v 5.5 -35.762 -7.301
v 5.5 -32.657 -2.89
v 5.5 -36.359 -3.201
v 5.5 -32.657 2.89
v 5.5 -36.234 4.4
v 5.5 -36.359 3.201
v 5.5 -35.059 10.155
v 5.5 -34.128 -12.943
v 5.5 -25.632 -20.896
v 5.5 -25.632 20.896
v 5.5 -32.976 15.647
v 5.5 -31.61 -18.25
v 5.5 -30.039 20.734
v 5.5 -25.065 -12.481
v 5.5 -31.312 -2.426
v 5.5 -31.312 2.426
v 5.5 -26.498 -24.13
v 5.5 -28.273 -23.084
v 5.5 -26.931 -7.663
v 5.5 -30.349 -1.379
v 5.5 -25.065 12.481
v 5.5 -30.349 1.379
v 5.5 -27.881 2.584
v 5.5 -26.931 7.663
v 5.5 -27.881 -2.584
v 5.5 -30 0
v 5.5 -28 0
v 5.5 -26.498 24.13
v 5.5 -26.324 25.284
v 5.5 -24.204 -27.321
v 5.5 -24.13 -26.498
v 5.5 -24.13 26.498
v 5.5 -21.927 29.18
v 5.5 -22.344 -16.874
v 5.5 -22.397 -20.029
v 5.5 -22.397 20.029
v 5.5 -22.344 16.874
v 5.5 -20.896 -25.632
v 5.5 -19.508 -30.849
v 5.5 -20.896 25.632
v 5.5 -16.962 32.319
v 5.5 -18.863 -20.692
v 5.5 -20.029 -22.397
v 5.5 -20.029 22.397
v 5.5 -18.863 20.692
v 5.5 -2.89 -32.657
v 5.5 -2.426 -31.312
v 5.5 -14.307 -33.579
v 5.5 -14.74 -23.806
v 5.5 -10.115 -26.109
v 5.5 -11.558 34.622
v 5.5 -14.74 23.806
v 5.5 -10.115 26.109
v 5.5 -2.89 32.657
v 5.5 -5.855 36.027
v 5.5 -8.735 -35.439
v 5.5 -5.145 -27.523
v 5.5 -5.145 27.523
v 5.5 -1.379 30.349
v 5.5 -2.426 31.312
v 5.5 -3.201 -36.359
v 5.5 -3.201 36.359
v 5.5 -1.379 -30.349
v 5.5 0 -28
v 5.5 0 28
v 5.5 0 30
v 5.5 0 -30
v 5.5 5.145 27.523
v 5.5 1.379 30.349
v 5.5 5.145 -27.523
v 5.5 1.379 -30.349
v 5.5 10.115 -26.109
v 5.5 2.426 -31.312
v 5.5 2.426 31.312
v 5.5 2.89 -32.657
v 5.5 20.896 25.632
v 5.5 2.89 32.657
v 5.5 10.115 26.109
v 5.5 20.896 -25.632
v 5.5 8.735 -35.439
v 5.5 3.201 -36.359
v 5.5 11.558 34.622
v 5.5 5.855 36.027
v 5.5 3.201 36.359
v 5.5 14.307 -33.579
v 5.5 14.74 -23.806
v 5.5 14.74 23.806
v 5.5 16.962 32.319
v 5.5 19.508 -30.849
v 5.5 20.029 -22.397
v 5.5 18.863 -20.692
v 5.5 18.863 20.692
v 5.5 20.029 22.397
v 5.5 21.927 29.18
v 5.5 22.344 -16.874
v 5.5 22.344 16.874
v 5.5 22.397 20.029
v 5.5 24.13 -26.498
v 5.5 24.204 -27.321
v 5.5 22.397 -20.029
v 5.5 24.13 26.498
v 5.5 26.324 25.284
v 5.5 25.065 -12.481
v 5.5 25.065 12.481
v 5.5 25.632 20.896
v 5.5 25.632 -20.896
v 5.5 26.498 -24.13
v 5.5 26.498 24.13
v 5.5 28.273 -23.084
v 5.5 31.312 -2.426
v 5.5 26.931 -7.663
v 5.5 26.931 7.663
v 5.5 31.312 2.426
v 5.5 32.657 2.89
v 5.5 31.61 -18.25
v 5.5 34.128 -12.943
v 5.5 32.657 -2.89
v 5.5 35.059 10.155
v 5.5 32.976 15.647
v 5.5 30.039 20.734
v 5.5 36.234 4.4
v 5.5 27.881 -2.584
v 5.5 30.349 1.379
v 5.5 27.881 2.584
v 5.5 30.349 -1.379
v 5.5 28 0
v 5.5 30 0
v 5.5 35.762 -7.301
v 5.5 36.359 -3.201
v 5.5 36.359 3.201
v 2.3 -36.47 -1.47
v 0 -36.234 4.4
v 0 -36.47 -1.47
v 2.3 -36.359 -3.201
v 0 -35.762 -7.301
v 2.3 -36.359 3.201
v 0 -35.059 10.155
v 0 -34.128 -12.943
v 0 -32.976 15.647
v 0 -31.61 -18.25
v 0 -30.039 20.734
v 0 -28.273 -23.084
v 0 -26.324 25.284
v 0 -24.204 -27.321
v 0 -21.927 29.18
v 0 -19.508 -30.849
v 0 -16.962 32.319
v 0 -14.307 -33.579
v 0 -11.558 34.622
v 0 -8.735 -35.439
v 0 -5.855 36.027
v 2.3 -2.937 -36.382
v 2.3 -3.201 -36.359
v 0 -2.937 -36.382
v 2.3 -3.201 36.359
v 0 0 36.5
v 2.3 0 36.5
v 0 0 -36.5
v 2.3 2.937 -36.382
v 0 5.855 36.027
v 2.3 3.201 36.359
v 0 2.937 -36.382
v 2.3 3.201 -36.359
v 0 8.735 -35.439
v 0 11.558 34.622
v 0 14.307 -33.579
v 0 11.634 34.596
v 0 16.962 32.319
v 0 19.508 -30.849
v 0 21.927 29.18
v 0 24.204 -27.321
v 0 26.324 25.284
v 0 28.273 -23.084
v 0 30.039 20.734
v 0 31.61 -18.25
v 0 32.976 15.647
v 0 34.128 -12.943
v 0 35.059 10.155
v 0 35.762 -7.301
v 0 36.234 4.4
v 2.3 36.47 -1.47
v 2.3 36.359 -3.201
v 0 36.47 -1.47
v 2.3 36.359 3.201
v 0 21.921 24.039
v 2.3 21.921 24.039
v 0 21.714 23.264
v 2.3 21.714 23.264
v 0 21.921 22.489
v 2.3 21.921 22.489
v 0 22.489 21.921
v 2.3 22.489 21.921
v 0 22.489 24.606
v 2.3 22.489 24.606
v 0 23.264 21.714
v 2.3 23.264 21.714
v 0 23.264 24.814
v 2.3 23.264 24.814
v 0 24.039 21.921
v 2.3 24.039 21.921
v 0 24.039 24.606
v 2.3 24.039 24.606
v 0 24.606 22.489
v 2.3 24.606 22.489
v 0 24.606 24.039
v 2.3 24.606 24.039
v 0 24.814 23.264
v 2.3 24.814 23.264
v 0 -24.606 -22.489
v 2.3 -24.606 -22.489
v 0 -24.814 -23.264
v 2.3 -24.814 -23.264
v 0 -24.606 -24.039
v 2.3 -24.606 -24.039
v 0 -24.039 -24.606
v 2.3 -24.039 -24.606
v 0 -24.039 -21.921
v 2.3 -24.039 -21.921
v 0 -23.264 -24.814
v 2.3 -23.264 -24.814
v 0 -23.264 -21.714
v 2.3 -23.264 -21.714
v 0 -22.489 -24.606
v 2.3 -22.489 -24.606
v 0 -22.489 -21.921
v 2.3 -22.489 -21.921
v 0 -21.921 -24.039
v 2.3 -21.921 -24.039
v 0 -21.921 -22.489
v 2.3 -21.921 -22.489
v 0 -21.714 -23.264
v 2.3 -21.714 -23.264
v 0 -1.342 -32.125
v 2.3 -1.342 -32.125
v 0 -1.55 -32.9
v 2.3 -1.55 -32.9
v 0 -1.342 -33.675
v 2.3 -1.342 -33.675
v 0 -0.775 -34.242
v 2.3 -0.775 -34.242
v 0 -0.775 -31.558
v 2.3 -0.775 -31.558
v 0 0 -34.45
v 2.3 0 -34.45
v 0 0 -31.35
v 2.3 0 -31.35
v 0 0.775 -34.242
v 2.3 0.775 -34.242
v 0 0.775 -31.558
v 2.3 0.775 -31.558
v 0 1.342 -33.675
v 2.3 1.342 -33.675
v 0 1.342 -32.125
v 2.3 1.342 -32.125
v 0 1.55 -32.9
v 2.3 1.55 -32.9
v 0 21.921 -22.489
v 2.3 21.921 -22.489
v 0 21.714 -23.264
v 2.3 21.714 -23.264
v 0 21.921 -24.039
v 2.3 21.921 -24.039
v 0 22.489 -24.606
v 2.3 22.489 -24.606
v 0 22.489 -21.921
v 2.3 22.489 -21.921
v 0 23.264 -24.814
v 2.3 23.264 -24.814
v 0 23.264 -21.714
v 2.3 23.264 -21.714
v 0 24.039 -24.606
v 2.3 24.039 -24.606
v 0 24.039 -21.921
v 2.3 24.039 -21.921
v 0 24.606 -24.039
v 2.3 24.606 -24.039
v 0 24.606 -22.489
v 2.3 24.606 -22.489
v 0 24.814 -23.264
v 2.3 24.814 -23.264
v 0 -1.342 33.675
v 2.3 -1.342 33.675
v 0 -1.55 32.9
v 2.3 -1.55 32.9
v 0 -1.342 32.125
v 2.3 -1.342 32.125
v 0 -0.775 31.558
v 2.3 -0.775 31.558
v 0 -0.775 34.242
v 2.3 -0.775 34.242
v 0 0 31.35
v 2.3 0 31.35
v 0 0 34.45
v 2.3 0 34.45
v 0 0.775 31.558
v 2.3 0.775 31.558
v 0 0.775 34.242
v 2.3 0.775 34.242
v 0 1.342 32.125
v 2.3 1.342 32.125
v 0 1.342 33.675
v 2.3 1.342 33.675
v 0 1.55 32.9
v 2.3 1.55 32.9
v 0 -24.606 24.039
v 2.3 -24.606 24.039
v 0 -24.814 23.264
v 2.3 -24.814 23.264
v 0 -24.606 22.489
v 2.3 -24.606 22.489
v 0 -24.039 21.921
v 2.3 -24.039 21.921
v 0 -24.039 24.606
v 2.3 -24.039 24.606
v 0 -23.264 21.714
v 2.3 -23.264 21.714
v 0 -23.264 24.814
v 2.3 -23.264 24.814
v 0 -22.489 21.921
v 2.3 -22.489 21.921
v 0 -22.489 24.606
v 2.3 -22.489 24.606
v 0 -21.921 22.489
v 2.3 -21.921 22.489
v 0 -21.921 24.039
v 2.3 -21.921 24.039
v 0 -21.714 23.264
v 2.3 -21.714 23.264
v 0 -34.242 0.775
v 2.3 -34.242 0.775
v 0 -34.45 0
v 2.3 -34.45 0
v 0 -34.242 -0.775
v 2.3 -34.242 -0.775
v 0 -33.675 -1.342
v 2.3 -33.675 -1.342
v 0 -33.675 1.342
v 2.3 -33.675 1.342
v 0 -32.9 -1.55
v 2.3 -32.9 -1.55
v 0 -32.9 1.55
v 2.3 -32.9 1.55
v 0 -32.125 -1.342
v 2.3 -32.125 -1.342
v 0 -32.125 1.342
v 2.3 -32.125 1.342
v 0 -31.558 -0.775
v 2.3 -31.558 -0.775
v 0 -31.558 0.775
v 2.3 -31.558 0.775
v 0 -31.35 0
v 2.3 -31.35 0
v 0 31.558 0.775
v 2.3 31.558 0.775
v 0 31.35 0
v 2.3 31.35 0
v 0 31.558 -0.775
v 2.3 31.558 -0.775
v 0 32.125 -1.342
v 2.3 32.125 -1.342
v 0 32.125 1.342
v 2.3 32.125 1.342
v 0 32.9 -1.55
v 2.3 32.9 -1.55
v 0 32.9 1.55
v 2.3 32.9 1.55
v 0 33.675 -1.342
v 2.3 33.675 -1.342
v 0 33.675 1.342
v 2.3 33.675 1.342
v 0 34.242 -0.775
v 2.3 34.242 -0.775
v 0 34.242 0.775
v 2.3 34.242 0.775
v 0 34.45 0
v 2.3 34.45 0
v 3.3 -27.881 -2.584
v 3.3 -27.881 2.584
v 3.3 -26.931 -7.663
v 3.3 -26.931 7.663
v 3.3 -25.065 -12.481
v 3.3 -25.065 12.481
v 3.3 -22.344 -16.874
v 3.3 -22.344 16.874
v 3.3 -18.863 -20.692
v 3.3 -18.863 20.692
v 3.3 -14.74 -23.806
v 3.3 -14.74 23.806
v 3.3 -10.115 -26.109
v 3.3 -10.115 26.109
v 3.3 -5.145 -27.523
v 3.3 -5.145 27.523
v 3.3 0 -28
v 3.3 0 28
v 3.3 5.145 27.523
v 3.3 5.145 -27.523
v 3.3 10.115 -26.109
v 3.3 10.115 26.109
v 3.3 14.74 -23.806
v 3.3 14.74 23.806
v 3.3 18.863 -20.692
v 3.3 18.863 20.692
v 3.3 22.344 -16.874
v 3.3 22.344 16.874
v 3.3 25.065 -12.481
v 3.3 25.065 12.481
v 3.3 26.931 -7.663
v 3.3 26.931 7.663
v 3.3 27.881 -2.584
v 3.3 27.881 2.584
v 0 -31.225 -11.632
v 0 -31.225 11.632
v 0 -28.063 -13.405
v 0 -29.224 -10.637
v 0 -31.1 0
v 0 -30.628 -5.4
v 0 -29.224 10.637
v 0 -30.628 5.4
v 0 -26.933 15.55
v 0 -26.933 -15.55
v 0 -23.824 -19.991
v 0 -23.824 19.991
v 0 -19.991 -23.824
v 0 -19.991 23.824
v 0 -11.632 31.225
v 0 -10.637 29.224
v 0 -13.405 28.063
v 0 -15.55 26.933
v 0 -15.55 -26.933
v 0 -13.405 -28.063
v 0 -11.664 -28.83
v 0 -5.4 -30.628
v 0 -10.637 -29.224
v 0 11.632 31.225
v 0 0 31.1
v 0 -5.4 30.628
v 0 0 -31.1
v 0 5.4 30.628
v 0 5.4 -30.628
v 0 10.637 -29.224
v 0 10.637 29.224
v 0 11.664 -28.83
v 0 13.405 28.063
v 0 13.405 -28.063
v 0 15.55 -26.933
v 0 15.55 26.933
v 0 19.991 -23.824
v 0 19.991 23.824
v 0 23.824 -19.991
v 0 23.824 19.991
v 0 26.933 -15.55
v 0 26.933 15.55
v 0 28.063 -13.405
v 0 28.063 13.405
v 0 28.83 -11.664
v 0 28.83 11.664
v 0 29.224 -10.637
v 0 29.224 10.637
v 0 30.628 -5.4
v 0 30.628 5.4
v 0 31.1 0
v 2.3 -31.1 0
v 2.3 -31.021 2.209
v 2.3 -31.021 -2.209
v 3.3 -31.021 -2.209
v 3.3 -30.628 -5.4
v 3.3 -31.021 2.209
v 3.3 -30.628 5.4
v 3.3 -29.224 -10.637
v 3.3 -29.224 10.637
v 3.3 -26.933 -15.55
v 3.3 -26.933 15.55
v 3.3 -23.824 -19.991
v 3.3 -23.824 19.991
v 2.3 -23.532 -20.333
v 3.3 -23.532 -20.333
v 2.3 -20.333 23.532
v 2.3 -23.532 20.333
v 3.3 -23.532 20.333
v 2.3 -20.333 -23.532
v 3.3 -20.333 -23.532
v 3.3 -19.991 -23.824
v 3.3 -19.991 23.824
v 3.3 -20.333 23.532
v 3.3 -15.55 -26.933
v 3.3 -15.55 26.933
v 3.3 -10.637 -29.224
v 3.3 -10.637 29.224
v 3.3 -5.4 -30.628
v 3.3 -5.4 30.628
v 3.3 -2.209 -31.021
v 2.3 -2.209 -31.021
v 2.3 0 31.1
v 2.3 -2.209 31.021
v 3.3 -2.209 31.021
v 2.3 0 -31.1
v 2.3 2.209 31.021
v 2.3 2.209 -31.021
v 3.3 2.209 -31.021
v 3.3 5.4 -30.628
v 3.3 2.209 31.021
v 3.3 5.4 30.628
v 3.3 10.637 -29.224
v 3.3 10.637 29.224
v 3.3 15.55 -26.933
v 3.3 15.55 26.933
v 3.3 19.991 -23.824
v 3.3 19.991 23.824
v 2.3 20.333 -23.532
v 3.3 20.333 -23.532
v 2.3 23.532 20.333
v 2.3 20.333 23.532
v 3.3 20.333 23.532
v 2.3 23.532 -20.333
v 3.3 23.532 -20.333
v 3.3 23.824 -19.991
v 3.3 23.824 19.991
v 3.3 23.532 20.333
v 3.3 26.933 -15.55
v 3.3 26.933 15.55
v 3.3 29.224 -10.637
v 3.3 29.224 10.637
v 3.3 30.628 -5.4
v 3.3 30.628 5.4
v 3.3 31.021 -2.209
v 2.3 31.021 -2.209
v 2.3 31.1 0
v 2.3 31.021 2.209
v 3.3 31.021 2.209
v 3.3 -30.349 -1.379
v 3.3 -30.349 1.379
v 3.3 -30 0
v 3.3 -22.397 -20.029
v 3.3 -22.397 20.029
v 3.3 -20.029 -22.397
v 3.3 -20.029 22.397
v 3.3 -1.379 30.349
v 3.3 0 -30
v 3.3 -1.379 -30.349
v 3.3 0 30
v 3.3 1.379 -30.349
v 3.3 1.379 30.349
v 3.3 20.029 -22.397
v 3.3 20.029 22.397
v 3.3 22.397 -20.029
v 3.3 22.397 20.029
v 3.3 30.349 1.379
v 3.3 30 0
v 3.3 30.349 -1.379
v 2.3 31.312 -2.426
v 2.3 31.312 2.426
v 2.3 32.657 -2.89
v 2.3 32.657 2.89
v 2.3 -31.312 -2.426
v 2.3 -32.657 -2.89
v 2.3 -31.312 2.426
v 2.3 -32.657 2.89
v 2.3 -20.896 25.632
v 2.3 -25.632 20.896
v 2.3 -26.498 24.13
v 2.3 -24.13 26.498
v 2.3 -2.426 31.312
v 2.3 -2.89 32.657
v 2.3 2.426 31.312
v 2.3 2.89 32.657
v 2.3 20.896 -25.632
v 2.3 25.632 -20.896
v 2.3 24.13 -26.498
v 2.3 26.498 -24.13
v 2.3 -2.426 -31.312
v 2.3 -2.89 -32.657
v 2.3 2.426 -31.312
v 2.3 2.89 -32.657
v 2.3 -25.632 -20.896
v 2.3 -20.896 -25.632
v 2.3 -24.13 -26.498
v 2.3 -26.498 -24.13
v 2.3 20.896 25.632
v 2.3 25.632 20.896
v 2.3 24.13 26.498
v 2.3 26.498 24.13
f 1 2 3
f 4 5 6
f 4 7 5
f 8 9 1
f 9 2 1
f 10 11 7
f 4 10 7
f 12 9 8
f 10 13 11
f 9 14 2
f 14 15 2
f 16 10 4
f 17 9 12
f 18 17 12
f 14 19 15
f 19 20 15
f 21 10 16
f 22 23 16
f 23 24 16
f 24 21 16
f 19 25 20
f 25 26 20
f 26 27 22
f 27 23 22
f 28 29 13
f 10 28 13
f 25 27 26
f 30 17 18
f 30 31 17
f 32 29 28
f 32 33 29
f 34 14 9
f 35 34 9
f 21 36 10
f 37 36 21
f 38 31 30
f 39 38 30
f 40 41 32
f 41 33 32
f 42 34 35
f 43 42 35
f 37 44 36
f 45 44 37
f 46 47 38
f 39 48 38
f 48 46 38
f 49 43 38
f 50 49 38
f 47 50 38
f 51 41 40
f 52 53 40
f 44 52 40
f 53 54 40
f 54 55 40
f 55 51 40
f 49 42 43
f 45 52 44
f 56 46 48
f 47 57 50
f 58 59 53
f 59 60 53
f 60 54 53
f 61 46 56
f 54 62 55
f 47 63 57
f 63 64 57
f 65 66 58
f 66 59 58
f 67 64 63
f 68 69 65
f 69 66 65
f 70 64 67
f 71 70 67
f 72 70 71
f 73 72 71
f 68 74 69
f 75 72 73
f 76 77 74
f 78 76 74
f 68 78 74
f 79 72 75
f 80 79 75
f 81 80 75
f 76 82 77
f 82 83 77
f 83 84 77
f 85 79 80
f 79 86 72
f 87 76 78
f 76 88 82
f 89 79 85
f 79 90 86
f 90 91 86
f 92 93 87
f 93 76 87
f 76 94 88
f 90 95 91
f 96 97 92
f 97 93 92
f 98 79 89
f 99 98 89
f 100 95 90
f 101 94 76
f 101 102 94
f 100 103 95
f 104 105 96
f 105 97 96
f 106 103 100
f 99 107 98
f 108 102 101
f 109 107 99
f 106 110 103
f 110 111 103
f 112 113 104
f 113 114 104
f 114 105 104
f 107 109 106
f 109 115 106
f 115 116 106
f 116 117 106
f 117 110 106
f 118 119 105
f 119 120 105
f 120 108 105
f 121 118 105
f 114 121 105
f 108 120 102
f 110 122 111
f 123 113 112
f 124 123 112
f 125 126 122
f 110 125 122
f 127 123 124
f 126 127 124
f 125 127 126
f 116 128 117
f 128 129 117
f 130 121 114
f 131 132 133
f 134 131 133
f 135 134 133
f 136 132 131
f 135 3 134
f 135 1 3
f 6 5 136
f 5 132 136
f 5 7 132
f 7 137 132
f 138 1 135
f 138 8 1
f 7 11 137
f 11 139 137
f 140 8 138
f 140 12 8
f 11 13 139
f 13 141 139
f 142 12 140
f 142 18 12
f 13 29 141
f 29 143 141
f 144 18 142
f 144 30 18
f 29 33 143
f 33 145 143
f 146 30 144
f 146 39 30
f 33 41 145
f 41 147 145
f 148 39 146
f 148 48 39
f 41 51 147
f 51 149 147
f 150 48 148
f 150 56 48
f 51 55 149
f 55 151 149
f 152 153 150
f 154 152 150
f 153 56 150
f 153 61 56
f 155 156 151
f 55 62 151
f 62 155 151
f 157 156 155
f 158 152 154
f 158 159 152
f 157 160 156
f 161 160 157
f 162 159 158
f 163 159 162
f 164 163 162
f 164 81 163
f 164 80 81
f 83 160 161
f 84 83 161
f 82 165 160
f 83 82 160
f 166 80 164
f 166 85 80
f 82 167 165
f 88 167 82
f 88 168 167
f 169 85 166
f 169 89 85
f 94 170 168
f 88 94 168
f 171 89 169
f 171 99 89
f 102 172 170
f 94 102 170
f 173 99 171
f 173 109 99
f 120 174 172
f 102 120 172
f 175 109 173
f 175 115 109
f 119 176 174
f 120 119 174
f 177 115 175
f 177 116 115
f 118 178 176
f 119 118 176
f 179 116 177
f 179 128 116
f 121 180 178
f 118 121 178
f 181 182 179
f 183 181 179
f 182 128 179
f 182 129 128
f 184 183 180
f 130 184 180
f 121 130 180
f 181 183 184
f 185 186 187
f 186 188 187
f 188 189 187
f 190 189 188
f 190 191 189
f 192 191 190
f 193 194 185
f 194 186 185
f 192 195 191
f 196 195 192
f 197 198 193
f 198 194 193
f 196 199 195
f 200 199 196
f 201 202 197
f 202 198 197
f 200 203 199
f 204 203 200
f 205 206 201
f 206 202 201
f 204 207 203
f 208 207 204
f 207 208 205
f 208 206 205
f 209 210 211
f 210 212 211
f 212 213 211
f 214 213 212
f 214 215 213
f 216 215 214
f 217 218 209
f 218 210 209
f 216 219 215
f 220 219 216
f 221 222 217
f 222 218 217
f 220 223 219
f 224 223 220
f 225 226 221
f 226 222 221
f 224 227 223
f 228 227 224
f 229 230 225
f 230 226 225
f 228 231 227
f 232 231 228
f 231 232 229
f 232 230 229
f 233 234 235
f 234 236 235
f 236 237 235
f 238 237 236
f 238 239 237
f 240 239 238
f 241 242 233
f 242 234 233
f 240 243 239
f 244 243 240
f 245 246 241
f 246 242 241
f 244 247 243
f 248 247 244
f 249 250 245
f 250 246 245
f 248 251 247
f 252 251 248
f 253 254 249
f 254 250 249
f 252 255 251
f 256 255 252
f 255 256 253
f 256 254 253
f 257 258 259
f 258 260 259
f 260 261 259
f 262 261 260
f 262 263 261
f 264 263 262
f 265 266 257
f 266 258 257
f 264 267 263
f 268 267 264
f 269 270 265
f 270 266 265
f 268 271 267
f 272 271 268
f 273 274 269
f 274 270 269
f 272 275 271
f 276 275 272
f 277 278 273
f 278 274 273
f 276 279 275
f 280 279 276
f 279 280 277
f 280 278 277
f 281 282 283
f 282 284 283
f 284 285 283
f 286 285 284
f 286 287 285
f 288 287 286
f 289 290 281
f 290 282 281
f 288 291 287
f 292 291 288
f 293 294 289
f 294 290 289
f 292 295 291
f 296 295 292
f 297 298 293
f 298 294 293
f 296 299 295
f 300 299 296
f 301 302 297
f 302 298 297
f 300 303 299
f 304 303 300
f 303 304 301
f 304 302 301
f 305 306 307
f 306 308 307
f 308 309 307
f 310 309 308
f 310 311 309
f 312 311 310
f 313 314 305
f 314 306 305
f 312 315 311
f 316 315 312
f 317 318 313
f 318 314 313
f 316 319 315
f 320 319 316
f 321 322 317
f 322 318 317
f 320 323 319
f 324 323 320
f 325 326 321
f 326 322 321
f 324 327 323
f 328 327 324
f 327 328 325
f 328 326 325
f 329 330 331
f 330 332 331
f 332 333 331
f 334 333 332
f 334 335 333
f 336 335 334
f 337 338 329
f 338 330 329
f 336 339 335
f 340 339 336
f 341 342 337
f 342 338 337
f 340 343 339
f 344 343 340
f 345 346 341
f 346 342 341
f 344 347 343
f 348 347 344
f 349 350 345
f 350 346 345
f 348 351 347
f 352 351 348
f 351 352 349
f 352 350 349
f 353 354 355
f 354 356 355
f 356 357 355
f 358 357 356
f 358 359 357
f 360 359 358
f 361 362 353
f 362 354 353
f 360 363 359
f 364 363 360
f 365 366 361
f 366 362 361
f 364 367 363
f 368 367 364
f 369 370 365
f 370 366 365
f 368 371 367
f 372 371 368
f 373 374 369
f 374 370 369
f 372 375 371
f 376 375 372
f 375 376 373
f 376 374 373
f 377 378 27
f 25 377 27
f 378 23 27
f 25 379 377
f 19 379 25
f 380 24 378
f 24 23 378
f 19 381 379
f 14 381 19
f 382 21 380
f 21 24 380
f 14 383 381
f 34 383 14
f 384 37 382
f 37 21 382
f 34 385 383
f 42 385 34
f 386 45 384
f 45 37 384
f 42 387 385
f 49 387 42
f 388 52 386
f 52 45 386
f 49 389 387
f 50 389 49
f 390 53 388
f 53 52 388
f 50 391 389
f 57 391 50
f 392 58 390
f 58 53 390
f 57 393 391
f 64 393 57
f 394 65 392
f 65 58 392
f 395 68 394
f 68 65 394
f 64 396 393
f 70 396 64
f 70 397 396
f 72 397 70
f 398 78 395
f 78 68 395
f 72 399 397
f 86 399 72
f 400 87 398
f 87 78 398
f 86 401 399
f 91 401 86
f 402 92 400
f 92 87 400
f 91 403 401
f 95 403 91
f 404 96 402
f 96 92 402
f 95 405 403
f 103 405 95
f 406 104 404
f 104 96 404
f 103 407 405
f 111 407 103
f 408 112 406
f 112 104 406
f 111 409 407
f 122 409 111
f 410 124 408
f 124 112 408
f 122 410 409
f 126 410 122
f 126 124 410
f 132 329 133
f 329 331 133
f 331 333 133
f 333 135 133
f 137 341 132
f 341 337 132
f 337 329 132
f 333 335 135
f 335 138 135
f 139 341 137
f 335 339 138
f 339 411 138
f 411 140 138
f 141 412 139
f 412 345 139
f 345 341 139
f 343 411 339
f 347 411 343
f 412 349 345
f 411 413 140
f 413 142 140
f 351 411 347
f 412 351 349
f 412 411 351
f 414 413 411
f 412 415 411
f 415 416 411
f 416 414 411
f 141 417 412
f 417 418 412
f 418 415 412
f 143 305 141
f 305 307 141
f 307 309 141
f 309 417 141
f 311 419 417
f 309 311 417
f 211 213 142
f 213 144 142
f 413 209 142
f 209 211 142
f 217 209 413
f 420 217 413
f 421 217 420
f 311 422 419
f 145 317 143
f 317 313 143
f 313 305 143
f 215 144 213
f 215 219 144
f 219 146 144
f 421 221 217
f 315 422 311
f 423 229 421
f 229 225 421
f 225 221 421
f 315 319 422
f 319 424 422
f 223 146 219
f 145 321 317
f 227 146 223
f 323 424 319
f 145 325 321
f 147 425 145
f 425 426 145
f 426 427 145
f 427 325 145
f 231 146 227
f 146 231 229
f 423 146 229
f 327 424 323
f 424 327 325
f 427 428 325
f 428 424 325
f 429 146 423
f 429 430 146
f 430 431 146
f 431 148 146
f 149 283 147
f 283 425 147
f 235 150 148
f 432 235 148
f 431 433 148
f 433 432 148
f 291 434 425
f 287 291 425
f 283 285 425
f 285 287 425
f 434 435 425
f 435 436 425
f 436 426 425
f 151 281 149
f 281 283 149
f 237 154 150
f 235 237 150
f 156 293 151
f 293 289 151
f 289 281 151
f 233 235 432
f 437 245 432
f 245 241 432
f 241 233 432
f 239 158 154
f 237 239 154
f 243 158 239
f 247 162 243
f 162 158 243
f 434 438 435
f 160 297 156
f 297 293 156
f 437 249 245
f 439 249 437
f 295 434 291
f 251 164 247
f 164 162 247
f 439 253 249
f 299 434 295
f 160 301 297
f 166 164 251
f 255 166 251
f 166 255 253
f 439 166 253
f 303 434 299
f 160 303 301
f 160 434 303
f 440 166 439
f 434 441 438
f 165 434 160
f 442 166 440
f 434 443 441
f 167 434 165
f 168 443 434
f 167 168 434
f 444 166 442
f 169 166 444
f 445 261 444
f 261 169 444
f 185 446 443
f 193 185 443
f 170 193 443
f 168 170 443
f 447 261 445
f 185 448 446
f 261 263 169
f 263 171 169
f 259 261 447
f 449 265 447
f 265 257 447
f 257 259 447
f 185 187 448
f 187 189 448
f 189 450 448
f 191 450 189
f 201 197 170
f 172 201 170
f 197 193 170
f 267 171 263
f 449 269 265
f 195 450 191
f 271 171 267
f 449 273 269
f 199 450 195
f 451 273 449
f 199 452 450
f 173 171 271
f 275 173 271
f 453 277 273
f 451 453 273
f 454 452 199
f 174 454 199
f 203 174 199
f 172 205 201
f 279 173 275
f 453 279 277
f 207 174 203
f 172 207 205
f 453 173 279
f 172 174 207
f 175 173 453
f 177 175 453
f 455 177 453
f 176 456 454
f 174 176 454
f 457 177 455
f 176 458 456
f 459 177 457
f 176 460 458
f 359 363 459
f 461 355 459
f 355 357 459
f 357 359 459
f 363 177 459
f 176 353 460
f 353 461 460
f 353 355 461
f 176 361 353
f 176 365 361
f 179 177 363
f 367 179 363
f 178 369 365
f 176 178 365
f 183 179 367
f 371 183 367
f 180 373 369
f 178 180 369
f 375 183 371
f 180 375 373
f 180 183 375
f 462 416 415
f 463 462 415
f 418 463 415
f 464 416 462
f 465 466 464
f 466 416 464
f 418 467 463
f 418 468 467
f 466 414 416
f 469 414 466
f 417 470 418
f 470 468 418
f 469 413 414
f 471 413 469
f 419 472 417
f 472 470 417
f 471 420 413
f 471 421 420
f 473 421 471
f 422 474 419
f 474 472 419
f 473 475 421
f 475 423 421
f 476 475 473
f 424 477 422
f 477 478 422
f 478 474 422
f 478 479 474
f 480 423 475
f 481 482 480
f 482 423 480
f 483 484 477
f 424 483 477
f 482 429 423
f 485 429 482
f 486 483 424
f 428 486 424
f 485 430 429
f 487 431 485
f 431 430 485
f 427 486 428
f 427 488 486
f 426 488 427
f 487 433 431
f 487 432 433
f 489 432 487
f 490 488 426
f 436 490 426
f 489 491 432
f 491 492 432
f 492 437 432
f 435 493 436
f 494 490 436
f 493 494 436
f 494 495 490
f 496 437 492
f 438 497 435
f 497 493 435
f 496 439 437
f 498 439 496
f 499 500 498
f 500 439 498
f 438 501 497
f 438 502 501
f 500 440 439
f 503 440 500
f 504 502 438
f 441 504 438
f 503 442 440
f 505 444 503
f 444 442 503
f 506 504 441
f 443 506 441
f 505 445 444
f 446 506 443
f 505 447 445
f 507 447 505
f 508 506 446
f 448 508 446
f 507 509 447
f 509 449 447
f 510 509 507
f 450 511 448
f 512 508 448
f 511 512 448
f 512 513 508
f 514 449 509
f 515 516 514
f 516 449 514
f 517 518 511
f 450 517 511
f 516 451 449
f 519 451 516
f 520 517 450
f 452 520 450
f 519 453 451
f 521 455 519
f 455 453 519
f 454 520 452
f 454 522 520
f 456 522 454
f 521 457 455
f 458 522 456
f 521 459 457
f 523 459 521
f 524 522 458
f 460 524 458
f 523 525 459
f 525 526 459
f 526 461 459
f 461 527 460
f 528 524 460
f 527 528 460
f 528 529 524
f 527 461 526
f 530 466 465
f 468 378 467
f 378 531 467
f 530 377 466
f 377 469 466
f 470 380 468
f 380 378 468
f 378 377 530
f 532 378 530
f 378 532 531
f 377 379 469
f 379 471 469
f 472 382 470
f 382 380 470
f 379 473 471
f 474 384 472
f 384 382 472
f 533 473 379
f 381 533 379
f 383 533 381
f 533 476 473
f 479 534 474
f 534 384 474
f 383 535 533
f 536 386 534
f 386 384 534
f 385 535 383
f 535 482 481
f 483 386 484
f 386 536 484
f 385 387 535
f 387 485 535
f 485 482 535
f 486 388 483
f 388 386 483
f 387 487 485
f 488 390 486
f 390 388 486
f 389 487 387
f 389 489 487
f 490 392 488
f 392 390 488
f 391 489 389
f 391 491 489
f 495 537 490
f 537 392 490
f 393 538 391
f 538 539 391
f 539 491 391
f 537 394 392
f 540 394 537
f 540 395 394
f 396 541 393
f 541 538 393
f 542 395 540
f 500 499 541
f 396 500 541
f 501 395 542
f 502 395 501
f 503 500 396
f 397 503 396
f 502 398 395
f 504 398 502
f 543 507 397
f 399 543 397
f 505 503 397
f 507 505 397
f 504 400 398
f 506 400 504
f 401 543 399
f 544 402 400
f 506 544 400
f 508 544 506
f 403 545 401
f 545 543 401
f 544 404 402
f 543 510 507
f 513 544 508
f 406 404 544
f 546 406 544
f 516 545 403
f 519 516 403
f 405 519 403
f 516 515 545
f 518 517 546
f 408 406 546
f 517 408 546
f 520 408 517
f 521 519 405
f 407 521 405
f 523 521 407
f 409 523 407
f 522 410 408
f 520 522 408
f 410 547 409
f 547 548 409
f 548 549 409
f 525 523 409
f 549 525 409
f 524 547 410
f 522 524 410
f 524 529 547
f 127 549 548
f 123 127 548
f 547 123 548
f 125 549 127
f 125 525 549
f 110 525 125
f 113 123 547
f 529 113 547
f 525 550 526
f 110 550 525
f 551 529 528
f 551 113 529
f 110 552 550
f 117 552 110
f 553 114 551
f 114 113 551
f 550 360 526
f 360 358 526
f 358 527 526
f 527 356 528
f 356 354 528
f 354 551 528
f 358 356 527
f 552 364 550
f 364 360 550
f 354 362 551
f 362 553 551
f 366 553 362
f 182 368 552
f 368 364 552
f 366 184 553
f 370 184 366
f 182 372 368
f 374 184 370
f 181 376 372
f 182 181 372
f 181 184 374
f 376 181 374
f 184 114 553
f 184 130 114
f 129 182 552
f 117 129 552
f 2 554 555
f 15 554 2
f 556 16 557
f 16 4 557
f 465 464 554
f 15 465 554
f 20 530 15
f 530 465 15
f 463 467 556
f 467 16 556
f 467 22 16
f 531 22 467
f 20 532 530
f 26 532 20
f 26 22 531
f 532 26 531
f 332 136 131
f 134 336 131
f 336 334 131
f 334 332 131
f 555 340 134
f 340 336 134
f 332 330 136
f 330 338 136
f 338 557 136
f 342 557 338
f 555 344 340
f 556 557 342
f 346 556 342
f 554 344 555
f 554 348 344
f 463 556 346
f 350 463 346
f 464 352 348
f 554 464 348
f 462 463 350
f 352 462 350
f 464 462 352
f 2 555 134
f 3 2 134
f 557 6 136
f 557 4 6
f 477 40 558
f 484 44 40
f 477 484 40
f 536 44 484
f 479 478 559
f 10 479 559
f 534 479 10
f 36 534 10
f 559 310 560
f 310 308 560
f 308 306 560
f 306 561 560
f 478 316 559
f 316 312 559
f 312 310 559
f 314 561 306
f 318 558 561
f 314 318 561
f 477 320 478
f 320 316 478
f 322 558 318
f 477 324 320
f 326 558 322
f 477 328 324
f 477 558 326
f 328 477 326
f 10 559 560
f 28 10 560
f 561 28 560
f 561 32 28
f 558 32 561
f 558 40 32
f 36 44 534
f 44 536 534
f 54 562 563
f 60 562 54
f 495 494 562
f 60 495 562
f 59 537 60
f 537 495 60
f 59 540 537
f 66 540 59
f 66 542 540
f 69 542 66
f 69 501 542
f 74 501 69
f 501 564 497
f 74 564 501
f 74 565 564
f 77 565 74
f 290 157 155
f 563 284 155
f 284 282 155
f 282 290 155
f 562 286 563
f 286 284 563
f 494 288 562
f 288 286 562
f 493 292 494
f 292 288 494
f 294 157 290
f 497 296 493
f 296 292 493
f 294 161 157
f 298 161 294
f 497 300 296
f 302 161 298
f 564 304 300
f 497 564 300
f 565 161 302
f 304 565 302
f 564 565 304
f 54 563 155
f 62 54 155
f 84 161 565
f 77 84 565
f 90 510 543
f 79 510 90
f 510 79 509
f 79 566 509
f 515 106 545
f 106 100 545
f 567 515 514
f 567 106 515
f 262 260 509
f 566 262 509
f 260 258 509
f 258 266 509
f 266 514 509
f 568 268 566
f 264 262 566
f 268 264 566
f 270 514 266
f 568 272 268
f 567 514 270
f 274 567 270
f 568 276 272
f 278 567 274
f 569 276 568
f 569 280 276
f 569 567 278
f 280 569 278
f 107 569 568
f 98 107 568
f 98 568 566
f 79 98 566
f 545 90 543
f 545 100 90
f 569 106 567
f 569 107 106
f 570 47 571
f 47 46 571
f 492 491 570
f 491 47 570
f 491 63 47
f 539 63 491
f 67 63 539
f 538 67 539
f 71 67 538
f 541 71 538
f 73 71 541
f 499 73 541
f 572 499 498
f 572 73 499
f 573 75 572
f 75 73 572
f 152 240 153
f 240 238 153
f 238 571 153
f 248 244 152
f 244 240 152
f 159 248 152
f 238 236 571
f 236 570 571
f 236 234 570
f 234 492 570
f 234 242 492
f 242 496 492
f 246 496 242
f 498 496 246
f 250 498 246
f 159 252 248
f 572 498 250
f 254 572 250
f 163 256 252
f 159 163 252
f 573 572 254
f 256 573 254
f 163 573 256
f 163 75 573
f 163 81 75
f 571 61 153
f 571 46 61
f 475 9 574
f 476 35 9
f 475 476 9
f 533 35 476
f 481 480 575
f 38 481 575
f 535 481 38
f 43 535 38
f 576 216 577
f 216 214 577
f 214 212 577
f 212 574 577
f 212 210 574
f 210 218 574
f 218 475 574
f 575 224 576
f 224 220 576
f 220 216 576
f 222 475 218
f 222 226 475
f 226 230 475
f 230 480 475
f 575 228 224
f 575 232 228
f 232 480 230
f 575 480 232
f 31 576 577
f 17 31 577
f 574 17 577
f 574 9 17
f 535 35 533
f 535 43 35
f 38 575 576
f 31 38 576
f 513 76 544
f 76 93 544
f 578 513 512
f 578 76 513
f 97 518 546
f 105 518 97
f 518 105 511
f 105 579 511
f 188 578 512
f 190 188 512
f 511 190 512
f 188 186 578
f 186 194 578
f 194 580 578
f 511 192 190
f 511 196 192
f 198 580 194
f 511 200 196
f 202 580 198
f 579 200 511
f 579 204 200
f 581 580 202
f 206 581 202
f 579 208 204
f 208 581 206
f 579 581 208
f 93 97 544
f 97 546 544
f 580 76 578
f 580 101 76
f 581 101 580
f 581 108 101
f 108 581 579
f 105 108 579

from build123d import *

# Parameters (mm, degrees)
SKETCH_1_R          = 36.5
SKETCH_1_R_2        = 28
EXTRUDE_1_DEPTH     = 5.5
SKETCH_2_R          = 31.1
CUT_EXTRUDE_1_DEPTH = 3.3
CUT_EXTRUDE_2_REACH = 53.911
SKETCH_3_R          = 1.55
SKETCH_4_R          = 1.55
CUT_EXTRUDE_3_DEPTH = 3.2


with BuildPart() as part:
    # 草图1 → 凸台-拉伸1 (new body)
    with BuildSketch(Plane(origin=(0, 0, 0), x_dir=(0, 0, -1), z_dir=(1, 0, 0))):
        Circle(SKETCH_1_R)
        Circle(SKETCH_1_R_2, mode=Mode.SUBTRACT)
    extrude(amount=EXTRUDE_1_DEPTH)

    # 草图2 → 切除-拉伸1 (cut)
    with BuildSketch(Plane.ZY):
        Circle(SKETCH_2_R)
    extrude(amount=-CUT_EXTRUDE_1_DEPTH, mode=Mode.SUBTRACT)

    # 草图3 → 切除-拉伸2 (cut, up to next)
    with BuildSketch(Plane(origin=(5.5, 0, 0), x_dir=(0, 0, -1), z_dir=(1, 0, 0)), mode=Mode.PRIVATE) as cut_extrude_2_sk1:
        with Locations((32.9, 0)):
            Circle(SKETCH_3_R)
    cut_extrude_2_tool1 = extrude(cut_extrude_2_sk1.sketch, amount=-CUT_EXTRUDE_2_REACH, mode=Mode.PRIVATE) & part.part
    # 草图3 → 切除-拉伸2 (cut, up to next)
    with BuildSketch(Plane(origin=(5.5, 0, 0), x_dir=(0, 0, -1), z_dir=(1, 0, 0)), mode=Mode.PRIVATE) as cut_extrude_2_sk2:
        with Locations((23.263813101, -23.263813101)):
            Circle(SKETCH_3_R)
    cut_extrude_2_tool2 = extrude(cut_extrude_2_sk2.sketch, amount=-CUT_EXTRUDE_2_REACH, mode=Mode.PRIVATE) & part.part
    # 草图3 → 切除-拉伸2 (cut, up to next)
    with BuildSketch(Plane(origin=(5.5, 0, 0), x_dir=(0, 0, -1), z_dir=(1, 0, 0)), mode=Mode.PRIVATE) as cut_extrude_2_sk3:
        with Locations((0, -32.9)):
            Circle(SKETCH_3_R)
    cut_extrude_2_tool3 = extrude(cut_extrude_2_sk3.sketch, amount=-CUT_EXTRUDE_2_REACH, mode=Mode.PRIVATE) & part.part
    # 草图3 → 切除-拉伸2 (cut, up to next)
    with BuildSketch(Plane(origin=(5.5, 0, 0), x_dir=(0, 0, -1), z_dir=(1, 0, 0)), mode=Mode.PRIVATE) as cut_extrude_2_sk4:
        with Locations((-23.263813101, -23.263813101)):
            Circle(SKETCH_3_R)
    cut_extrude_2_tool4 = extrude(cut_extrude_2_sk4.sketch, amount=-CUT_EXTRUDE_2_REACH, mode=Mode.PRIVATE) & part.part
    # 草图3 → 切除-拉伸2 (cut, up to next)
    with BuildSketch(Plane(origin=(5.5, 0, 0), x_dir=(0, 0, -1), z_dir=(1, 0, 0)), mode=Mode.PRIVATE) as cut_extrude_2_sk5:
        with Locations((-32.9, 0)):
            Circle(SKETCH_3_R)
    cut_extrude_2_tool5 = extrude(cut_extrude_2_sk5.sketch, amount=-CUT_EXTRUDE_2_REACH, mode=Mode.PRIVATE) & part.part
    # 草图3 → 切除-拉伸2 (cut, up to next)
    with BuildSketch(Plane(origin=(5.5, 0, 0), x_dir=(0, 0, -1), z_dir=(1, 0, 0)), mode=Mode.PRIVATE) as cut_extrude_2_sk6:
        with Locations((-23.263813101, 23.263813101)):
            Circle(SKETCH_3_R)
    cut_extrude_2_tool6 = extrude(cut_extrude_2_sk6.sketch, amount=-CUT_EXTRUDE_2_REACH, mode=Mode.PRIVATE) & part.part
    # 草图3 → 切除-拉伸2 (cut, up to next)
    with BuildSketch(Plane(origin=(5.5, 0, 0), x_dir=(0, 0, -1), z_dir=(1, 0, 0)), mode=Mode.PRIVATE) as cut_extrude_2_sk7:
        with Locations((0, 32.9)):
            Circle(SKETCH_3_R)
    cut_extrude_2_tool7 = extrude(cut_extrude_2_sk7.sketch, amount=-CUT_EXTRUDE_2_REACH, mode=Mode.PRIVATE) & part.part
    # 草图3 → 切除-拉伸2 (cut, up to next)
    with BuildSketch(Plane(origin=(5.5, 0, 0), x_dir=(0, 0, -1), z_dir=(1, 0, 0)), mode=Mode.PRIVATE) as cut_extrude_2_sk8:
        with Locations((23.263813101, 23.263813101)):
            Circle(SKETCH_3_R)
    cut_extrude_2_tool8 = extrude(cut_extrude_2_sk8.sketch, amount=-CUT_EXTRUDE_2_REACH, mode=Mode.PRIVATE) & part.part
    add(cut_extrude_2_tool1.solids().sort_by_distance((5.5, 0, -32.9))[0], mode=Mode.SUBTRACT)
    add(cut_extrude_2_tool2.solids().sort_by_distance((5.5, -23.263813, -23.263813))[0], mode=Mode.SUBTRACT)
    add(cut_extrude_2_tool3.solids().sort_by_distance((5.5, -32.9, 0))[0], mode=Mode.SUBTRACT)
    add(cut_extrude_2_tool4.solids().sort_by_distance((5.5, -23.263813, 23.263813))[0], mode=Mode.SUBTRACT)
    add(cut_extrude_2_tool5.solids().sort_by_distance((5.5, 0, 32.9))[0], mode=Mode.SUBTRACT)
    add(cut_extrude_2_tool6.solids().sort_by_distance((5.5, 23.263813, 23.263813))[0], mode=Mode.SUBTRACT)
    add(cut_extrude_2_tool7.solids().sort_by_distance((5.5, 32.9, 0))[0], mode=Mode.SUBTRACT)
    add(cut_extrude_2_tool8.solids().sort_by_distance((5.5, 23.263813, -23.263813))[0], mode=Mode.SUBTRACT)

    # 草图4 → 切除-拉伸3 (cut)
    # profile 1 of 8: a face of its own
    with BuildSketch(Plane(origin=(5.5, 0, 0), x_dir=(0, 0, -1), z_dir=(1, 0, 0))):
        with BuildLine():
            Line((-32.656757596, 2.889780811), (-36.359328813, 3.20143847))
            ThreePointArc((-36.359328813, 3.20143847), (-36.5, 0), (-36.359328813, -3.20143847))
            Line((-36.359328813, -3.20143847), (-32.656757596, -2.889780811))
            ThreePointArc((-32.656757596, -2.889780811), (-30, 0), (-32.656757596, 2.889780811))
        make_face()
        with Locations((-32.9, 0)):
            Circle(SKETCH_4_R, mode=Mode.SUBTRACT)
    # profile 2 of 8: a face of its own
    with BuildSketch(Plane(origin=(5.5, 0, 0), x_dir=(0, 0, -1), z_dir=(1, 0, 0))):
        with BuildLine():
            Line((2.889780811, 32.656757596), (3.20143847, 36.359328813))
            ThreePointArc((3.20143847, 36.359328813), (0, 36.5), (-3.20143847, 36.359328813))
            Line((-3.20143847, 36.359328813), (-2.889780811, 32.656757596))
            ThreePointArc((-2.889780811, 32.656757596), (0, 30), (2.889780811, 32.656757596))
        make_face()
        with Locations((0, 32.9)):
            Circle(SKETCH_4_R, mode=Mode.SUBTRACT)
    # profile 3 of 8: a face of its own
    with BuildSketch(Plane(origin=(5.5, 0, 0), x_dir=(0, 0, -1), z_dir=(1, 0, 0))):
        Polygon((26.498342809, 24.130502724), (24.130502724, 26.498342809), (20.895973016, 25.631653186), (20.029283393, 22.397123478), (22.397123478, 20.029283393), (25.631653186, 20.895973016), align=None)
        with Locations((23.263813101, 23.263813101)):
            Circle(SKETCH_4_R, mode=Mode.SUBTRACT)
    # profile 4 of 8: a face of its own
    with BuildSketch(Plane(origin=(5.5, 0, 0), x_dir=(0, 0, -1), z_dir=(1, 0, 0))):
        with BuildLine():
            Line((36.359328813, 3.20143847), (32.656757596, 2.889780811))
            ThreePointArc((32.656757596, 2.889780811), (30, 0), (32.656757596, -2.889780811))
            Line((32.656757596, -2.889780811), (36.359328813, -3.20143847))
            ThreePointArc((36.359328813, -3.20143847), (36.464815245, -1.602263763), (36.5, 0))
            ThreePointArc((36.5, 0), (36.464815245, 1.602263763), (36.359328813, 3.20143847))
        make_face()
        with Locations((32.9, 0)):
            Circle(SKETCH_4_R, mode=Mode.SUBTRACT)
    # profile 5 of 8: a face of its own
    with BuildSketch(Plane(origin=(5.5, 0, 0), x_dir=(0, 0, -1), z_dir=(1, 0, 0))):
        Polygon((24.130502724, -26.498342809), (26.498342809, -24.130502724), (25.631653186, -20.895973016), (22.397123478, -20.029283393), (20.029283393, -22.397123478), (20.895973016, -25.631653186), align=None)
        with Locations((23.263813101, -23.263813101)):
            Circle(SKETCH_4_R, mode=Mode.SUBTRACT)
    # profile 6 of 8: a face of its own
    with BuildSketch(Plane(origin=(5.5, 0, 0), x_dir=(0, 0, -1), z_dir=(1, 0, 0))):
        with BuildLine():
            ThreePointArc((-3.20143847, -36.359328813), (0, -36.5), (3.20143847, -36.359328813))
            Line((3.20143847, -36.359328813), (2.889780811, -32.656757596))
            ThreePointArc((2.889780811, -32.656757596), (0, -30), (-2.889780811, -32.656757596))
            Line((-2.889780811, -32.656757596), (-3.20143847, -36.359328813))
        make_face()
        with Locations((0, -32.9)):
            Circle(SKETCH_4_R, mode=Mode.SUBTRACT)
    # profile 7 of 8: a face of its own
    with BuildSketch(Plane(origin=(5.5, 0, 0), x_dir=(0, 0, -1), z_dir=(1, 0, 0))):
        Polygon((-20.895973016, -25.631653186), (-20.029283393, -22.397123478), (-22.397123478, -20.029283393), (-25.631653186, -20.895973016), (-26.498342809, -24.130502724), (-24.130502724, -26.498342809), align=None)
    # profile 8 of 8: a face of its own
    with BuildSketch(Plane(origin=(5.5, 0, 0), x_dir=(0, 0, -1), z_dir=(1, 0, 0))):
        Polygon((-20.029283393, 22.397123478), (-20.895973016, 25.631653186), (-24.130502724, 26.498342809), (-26.498342809, 24.130502724), (-25.631653186, 20.895973016), (-22.397123478, 20.029283393), align=None)
    extrude(amount=-CUT_EXTRUDE_3_DEPTH, mode=Mode.SUBTRACT)


solid = part.part
